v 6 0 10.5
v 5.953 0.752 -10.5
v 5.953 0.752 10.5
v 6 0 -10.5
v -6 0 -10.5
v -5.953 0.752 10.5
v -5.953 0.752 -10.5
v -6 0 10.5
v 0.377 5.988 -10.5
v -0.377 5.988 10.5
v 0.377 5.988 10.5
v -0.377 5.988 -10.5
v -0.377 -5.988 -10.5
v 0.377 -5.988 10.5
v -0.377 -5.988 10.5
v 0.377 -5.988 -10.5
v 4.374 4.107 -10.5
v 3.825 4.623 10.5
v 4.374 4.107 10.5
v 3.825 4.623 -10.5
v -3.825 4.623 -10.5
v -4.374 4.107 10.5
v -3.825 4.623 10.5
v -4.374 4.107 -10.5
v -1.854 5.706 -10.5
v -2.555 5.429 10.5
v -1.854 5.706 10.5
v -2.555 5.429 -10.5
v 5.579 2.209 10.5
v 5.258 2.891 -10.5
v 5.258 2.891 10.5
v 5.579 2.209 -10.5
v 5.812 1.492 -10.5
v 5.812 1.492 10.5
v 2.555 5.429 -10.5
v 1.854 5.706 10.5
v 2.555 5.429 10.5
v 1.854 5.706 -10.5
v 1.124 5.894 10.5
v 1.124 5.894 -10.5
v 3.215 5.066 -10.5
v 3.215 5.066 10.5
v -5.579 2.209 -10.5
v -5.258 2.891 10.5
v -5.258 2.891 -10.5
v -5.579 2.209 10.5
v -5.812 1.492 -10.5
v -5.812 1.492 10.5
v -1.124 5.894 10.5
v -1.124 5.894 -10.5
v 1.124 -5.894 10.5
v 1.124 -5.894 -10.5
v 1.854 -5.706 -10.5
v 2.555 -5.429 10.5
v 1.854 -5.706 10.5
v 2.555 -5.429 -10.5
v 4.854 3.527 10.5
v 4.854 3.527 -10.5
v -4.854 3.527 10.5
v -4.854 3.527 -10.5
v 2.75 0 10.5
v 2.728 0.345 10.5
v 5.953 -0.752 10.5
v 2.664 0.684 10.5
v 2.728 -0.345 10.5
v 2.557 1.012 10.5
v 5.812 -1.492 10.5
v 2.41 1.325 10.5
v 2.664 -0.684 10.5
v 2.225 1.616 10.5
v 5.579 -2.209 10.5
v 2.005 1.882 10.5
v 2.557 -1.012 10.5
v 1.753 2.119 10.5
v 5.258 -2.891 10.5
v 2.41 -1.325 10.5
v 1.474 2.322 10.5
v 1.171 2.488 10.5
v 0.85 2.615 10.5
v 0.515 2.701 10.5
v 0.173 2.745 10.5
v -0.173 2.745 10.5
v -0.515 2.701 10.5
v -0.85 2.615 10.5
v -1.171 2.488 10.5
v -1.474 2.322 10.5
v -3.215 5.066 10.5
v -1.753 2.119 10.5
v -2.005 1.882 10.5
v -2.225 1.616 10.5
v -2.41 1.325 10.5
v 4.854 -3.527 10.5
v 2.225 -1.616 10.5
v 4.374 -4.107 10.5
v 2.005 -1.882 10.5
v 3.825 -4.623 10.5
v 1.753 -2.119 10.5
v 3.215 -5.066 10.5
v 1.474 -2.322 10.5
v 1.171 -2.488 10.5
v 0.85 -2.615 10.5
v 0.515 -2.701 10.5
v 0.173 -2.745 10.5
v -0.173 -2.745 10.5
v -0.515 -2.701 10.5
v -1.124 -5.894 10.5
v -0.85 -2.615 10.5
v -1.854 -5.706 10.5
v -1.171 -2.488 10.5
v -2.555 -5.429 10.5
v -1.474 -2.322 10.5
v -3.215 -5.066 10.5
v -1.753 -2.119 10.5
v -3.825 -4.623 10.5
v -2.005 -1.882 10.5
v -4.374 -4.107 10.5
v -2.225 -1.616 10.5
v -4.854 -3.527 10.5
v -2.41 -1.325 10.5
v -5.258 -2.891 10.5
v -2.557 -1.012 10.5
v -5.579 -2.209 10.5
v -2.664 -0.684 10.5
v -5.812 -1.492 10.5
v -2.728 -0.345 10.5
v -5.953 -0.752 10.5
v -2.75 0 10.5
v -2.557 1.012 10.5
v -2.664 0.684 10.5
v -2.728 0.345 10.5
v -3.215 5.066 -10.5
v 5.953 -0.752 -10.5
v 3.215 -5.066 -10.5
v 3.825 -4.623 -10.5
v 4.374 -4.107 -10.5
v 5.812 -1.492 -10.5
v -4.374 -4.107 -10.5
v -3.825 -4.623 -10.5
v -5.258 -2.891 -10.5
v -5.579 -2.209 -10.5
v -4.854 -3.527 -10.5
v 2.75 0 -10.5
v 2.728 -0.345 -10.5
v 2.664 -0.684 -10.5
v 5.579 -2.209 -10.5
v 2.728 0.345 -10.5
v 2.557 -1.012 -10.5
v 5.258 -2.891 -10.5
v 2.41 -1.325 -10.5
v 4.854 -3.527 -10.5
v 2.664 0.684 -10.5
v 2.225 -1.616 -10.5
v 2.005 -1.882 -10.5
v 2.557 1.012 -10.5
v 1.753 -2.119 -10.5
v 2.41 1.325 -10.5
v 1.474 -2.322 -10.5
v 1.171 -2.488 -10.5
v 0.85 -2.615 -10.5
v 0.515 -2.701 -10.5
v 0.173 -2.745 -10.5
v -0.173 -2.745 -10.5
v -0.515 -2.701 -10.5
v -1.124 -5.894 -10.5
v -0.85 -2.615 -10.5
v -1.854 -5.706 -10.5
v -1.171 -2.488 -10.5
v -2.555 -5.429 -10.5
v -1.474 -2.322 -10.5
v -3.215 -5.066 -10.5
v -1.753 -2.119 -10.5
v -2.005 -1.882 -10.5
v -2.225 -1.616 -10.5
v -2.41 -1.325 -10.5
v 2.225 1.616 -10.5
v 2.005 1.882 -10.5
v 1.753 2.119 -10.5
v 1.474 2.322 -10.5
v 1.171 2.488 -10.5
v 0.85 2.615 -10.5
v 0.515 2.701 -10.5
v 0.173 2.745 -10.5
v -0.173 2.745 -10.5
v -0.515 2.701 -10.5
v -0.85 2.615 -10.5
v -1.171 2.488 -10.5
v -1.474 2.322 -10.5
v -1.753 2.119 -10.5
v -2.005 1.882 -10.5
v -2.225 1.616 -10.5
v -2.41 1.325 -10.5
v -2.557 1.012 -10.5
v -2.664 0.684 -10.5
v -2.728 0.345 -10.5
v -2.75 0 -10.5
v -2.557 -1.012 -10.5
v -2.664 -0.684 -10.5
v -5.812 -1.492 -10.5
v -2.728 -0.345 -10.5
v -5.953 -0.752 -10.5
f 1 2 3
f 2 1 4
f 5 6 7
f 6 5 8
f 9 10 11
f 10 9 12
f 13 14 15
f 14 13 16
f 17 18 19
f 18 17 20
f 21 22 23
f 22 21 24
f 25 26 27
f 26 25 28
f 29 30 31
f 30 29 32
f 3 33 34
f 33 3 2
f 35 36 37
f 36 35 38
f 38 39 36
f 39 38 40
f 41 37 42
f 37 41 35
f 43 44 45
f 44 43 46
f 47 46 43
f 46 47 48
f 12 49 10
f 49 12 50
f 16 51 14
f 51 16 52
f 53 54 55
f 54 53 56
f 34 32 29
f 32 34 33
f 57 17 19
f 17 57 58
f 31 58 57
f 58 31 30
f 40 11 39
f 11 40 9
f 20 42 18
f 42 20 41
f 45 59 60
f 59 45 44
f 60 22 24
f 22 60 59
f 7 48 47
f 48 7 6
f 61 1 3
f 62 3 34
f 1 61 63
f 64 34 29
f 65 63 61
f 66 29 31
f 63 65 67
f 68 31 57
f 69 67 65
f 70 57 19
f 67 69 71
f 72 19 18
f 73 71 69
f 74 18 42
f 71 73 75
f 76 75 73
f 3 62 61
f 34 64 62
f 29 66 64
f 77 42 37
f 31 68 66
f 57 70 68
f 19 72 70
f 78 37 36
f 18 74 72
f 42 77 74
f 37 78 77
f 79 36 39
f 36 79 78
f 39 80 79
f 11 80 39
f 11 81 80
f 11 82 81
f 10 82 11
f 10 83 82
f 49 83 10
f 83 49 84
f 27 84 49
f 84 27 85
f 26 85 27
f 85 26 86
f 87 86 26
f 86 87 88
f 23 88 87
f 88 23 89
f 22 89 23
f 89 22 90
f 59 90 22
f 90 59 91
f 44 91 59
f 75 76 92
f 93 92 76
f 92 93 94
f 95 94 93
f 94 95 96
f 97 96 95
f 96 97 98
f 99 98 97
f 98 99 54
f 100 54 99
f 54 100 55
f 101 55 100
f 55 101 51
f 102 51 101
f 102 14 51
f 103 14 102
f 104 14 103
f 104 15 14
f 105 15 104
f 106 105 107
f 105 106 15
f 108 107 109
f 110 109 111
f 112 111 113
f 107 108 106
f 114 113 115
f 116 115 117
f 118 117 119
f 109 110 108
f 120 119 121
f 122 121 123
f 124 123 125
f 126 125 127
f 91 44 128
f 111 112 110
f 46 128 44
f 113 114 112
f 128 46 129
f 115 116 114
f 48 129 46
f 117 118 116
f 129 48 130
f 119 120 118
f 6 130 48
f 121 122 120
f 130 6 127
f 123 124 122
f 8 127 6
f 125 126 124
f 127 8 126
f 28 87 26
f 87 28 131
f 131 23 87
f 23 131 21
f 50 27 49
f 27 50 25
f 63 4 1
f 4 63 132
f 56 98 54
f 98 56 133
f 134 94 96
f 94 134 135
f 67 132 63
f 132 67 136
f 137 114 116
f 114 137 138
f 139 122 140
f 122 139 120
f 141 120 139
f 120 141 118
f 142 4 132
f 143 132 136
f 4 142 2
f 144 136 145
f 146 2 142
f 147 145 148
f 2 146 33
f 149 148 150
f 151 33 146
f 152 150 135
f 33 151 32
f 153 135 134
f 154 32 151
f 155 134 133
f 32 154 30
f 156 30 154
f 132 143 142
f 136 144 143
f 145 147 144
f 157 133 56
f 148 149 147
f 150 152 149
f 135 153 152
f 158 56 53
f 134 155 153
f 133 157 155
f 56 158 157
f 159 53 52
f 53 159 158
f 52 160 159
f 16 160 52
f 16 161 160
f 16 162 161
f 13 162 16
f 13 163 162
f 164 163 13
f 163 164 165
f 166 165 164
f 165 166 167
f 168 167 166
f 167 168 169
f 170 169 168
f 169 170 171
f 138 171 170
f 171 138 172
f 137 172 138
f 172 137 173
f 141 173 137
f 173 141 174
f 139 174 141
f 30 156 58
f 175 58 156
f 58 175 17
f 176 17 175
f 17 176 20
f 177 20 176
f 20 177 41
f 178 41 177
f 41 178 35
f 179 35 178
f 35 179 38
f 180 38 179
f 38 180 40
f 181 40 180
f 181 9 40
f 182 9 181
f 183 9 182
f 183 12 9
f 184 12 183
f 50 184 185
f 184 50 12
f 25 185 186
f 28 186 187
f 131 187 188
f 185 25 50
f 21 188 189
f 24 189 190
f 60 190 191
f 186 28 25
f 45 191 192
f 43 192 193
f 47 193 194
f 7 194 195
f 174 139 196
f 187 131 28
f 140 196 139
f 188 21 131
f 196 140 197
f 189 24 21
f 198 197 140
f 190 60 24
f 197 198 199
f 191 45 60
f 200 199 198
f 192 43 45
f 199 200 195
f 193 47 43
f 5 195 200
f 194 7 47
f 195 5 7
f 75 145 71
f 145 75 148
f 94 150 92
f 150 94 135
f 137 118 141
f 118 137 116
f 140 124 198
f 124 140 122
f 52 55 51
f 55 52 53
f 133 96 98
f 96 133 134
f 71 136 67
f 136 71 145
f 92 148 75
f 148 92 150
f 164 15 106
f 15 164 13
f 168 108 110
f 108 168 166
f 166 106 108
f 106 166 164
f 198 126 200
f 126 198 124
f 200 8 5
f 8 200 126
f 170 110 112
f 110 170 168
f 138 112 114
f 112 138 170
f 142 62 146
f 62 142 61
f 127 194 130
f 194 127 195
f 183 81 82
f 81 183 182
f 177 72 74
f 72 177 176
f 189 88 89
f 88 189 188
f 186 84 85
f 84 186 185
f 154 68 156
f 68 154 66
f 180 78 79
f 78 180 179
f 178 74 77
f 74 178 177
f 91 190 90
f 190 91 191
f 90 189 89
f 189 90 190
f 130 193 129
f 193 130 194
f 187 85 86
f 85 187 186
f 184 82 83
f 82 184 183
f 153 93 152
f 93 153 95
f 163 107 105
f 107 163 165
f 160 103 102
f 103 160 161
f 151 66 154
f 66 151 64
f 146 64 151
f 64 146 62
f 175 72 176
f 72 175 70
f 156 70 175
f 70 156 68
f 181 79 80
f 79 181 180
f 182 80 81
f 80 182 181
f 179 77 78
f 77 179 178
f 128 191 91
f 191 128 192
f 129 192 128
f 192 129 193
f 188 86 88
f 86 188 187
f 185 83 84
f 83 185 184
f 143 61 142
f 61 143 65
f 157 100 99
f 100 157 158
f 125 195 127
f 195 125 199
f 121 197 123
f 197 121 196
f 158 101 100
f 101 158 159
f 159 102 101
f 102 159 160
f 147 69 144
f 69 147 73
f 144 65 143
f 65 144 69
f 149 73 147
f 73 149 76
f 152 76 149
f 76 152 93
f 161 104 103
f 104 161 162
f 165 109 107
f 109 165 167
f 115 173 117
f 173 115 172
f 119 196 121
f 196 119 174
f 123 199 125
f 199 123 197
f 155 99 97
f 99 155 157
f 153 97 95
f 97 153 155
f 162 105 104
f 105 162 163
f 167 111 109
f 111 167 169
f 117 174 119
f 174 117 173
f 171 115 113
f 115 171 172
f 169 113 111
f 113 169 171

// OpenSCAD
$fn = 50;


difference() {
	union() {
		translate(v = [0, 0, -10.5000000000]) {
			cylinder(h = 21, r = 6.0000000000);
		}
	}
	union() {
		translate(v = [0, 0, -100.0000000000]) {
			cylinder(h = 200, r = 2.7500000000);
		}
	}
}
